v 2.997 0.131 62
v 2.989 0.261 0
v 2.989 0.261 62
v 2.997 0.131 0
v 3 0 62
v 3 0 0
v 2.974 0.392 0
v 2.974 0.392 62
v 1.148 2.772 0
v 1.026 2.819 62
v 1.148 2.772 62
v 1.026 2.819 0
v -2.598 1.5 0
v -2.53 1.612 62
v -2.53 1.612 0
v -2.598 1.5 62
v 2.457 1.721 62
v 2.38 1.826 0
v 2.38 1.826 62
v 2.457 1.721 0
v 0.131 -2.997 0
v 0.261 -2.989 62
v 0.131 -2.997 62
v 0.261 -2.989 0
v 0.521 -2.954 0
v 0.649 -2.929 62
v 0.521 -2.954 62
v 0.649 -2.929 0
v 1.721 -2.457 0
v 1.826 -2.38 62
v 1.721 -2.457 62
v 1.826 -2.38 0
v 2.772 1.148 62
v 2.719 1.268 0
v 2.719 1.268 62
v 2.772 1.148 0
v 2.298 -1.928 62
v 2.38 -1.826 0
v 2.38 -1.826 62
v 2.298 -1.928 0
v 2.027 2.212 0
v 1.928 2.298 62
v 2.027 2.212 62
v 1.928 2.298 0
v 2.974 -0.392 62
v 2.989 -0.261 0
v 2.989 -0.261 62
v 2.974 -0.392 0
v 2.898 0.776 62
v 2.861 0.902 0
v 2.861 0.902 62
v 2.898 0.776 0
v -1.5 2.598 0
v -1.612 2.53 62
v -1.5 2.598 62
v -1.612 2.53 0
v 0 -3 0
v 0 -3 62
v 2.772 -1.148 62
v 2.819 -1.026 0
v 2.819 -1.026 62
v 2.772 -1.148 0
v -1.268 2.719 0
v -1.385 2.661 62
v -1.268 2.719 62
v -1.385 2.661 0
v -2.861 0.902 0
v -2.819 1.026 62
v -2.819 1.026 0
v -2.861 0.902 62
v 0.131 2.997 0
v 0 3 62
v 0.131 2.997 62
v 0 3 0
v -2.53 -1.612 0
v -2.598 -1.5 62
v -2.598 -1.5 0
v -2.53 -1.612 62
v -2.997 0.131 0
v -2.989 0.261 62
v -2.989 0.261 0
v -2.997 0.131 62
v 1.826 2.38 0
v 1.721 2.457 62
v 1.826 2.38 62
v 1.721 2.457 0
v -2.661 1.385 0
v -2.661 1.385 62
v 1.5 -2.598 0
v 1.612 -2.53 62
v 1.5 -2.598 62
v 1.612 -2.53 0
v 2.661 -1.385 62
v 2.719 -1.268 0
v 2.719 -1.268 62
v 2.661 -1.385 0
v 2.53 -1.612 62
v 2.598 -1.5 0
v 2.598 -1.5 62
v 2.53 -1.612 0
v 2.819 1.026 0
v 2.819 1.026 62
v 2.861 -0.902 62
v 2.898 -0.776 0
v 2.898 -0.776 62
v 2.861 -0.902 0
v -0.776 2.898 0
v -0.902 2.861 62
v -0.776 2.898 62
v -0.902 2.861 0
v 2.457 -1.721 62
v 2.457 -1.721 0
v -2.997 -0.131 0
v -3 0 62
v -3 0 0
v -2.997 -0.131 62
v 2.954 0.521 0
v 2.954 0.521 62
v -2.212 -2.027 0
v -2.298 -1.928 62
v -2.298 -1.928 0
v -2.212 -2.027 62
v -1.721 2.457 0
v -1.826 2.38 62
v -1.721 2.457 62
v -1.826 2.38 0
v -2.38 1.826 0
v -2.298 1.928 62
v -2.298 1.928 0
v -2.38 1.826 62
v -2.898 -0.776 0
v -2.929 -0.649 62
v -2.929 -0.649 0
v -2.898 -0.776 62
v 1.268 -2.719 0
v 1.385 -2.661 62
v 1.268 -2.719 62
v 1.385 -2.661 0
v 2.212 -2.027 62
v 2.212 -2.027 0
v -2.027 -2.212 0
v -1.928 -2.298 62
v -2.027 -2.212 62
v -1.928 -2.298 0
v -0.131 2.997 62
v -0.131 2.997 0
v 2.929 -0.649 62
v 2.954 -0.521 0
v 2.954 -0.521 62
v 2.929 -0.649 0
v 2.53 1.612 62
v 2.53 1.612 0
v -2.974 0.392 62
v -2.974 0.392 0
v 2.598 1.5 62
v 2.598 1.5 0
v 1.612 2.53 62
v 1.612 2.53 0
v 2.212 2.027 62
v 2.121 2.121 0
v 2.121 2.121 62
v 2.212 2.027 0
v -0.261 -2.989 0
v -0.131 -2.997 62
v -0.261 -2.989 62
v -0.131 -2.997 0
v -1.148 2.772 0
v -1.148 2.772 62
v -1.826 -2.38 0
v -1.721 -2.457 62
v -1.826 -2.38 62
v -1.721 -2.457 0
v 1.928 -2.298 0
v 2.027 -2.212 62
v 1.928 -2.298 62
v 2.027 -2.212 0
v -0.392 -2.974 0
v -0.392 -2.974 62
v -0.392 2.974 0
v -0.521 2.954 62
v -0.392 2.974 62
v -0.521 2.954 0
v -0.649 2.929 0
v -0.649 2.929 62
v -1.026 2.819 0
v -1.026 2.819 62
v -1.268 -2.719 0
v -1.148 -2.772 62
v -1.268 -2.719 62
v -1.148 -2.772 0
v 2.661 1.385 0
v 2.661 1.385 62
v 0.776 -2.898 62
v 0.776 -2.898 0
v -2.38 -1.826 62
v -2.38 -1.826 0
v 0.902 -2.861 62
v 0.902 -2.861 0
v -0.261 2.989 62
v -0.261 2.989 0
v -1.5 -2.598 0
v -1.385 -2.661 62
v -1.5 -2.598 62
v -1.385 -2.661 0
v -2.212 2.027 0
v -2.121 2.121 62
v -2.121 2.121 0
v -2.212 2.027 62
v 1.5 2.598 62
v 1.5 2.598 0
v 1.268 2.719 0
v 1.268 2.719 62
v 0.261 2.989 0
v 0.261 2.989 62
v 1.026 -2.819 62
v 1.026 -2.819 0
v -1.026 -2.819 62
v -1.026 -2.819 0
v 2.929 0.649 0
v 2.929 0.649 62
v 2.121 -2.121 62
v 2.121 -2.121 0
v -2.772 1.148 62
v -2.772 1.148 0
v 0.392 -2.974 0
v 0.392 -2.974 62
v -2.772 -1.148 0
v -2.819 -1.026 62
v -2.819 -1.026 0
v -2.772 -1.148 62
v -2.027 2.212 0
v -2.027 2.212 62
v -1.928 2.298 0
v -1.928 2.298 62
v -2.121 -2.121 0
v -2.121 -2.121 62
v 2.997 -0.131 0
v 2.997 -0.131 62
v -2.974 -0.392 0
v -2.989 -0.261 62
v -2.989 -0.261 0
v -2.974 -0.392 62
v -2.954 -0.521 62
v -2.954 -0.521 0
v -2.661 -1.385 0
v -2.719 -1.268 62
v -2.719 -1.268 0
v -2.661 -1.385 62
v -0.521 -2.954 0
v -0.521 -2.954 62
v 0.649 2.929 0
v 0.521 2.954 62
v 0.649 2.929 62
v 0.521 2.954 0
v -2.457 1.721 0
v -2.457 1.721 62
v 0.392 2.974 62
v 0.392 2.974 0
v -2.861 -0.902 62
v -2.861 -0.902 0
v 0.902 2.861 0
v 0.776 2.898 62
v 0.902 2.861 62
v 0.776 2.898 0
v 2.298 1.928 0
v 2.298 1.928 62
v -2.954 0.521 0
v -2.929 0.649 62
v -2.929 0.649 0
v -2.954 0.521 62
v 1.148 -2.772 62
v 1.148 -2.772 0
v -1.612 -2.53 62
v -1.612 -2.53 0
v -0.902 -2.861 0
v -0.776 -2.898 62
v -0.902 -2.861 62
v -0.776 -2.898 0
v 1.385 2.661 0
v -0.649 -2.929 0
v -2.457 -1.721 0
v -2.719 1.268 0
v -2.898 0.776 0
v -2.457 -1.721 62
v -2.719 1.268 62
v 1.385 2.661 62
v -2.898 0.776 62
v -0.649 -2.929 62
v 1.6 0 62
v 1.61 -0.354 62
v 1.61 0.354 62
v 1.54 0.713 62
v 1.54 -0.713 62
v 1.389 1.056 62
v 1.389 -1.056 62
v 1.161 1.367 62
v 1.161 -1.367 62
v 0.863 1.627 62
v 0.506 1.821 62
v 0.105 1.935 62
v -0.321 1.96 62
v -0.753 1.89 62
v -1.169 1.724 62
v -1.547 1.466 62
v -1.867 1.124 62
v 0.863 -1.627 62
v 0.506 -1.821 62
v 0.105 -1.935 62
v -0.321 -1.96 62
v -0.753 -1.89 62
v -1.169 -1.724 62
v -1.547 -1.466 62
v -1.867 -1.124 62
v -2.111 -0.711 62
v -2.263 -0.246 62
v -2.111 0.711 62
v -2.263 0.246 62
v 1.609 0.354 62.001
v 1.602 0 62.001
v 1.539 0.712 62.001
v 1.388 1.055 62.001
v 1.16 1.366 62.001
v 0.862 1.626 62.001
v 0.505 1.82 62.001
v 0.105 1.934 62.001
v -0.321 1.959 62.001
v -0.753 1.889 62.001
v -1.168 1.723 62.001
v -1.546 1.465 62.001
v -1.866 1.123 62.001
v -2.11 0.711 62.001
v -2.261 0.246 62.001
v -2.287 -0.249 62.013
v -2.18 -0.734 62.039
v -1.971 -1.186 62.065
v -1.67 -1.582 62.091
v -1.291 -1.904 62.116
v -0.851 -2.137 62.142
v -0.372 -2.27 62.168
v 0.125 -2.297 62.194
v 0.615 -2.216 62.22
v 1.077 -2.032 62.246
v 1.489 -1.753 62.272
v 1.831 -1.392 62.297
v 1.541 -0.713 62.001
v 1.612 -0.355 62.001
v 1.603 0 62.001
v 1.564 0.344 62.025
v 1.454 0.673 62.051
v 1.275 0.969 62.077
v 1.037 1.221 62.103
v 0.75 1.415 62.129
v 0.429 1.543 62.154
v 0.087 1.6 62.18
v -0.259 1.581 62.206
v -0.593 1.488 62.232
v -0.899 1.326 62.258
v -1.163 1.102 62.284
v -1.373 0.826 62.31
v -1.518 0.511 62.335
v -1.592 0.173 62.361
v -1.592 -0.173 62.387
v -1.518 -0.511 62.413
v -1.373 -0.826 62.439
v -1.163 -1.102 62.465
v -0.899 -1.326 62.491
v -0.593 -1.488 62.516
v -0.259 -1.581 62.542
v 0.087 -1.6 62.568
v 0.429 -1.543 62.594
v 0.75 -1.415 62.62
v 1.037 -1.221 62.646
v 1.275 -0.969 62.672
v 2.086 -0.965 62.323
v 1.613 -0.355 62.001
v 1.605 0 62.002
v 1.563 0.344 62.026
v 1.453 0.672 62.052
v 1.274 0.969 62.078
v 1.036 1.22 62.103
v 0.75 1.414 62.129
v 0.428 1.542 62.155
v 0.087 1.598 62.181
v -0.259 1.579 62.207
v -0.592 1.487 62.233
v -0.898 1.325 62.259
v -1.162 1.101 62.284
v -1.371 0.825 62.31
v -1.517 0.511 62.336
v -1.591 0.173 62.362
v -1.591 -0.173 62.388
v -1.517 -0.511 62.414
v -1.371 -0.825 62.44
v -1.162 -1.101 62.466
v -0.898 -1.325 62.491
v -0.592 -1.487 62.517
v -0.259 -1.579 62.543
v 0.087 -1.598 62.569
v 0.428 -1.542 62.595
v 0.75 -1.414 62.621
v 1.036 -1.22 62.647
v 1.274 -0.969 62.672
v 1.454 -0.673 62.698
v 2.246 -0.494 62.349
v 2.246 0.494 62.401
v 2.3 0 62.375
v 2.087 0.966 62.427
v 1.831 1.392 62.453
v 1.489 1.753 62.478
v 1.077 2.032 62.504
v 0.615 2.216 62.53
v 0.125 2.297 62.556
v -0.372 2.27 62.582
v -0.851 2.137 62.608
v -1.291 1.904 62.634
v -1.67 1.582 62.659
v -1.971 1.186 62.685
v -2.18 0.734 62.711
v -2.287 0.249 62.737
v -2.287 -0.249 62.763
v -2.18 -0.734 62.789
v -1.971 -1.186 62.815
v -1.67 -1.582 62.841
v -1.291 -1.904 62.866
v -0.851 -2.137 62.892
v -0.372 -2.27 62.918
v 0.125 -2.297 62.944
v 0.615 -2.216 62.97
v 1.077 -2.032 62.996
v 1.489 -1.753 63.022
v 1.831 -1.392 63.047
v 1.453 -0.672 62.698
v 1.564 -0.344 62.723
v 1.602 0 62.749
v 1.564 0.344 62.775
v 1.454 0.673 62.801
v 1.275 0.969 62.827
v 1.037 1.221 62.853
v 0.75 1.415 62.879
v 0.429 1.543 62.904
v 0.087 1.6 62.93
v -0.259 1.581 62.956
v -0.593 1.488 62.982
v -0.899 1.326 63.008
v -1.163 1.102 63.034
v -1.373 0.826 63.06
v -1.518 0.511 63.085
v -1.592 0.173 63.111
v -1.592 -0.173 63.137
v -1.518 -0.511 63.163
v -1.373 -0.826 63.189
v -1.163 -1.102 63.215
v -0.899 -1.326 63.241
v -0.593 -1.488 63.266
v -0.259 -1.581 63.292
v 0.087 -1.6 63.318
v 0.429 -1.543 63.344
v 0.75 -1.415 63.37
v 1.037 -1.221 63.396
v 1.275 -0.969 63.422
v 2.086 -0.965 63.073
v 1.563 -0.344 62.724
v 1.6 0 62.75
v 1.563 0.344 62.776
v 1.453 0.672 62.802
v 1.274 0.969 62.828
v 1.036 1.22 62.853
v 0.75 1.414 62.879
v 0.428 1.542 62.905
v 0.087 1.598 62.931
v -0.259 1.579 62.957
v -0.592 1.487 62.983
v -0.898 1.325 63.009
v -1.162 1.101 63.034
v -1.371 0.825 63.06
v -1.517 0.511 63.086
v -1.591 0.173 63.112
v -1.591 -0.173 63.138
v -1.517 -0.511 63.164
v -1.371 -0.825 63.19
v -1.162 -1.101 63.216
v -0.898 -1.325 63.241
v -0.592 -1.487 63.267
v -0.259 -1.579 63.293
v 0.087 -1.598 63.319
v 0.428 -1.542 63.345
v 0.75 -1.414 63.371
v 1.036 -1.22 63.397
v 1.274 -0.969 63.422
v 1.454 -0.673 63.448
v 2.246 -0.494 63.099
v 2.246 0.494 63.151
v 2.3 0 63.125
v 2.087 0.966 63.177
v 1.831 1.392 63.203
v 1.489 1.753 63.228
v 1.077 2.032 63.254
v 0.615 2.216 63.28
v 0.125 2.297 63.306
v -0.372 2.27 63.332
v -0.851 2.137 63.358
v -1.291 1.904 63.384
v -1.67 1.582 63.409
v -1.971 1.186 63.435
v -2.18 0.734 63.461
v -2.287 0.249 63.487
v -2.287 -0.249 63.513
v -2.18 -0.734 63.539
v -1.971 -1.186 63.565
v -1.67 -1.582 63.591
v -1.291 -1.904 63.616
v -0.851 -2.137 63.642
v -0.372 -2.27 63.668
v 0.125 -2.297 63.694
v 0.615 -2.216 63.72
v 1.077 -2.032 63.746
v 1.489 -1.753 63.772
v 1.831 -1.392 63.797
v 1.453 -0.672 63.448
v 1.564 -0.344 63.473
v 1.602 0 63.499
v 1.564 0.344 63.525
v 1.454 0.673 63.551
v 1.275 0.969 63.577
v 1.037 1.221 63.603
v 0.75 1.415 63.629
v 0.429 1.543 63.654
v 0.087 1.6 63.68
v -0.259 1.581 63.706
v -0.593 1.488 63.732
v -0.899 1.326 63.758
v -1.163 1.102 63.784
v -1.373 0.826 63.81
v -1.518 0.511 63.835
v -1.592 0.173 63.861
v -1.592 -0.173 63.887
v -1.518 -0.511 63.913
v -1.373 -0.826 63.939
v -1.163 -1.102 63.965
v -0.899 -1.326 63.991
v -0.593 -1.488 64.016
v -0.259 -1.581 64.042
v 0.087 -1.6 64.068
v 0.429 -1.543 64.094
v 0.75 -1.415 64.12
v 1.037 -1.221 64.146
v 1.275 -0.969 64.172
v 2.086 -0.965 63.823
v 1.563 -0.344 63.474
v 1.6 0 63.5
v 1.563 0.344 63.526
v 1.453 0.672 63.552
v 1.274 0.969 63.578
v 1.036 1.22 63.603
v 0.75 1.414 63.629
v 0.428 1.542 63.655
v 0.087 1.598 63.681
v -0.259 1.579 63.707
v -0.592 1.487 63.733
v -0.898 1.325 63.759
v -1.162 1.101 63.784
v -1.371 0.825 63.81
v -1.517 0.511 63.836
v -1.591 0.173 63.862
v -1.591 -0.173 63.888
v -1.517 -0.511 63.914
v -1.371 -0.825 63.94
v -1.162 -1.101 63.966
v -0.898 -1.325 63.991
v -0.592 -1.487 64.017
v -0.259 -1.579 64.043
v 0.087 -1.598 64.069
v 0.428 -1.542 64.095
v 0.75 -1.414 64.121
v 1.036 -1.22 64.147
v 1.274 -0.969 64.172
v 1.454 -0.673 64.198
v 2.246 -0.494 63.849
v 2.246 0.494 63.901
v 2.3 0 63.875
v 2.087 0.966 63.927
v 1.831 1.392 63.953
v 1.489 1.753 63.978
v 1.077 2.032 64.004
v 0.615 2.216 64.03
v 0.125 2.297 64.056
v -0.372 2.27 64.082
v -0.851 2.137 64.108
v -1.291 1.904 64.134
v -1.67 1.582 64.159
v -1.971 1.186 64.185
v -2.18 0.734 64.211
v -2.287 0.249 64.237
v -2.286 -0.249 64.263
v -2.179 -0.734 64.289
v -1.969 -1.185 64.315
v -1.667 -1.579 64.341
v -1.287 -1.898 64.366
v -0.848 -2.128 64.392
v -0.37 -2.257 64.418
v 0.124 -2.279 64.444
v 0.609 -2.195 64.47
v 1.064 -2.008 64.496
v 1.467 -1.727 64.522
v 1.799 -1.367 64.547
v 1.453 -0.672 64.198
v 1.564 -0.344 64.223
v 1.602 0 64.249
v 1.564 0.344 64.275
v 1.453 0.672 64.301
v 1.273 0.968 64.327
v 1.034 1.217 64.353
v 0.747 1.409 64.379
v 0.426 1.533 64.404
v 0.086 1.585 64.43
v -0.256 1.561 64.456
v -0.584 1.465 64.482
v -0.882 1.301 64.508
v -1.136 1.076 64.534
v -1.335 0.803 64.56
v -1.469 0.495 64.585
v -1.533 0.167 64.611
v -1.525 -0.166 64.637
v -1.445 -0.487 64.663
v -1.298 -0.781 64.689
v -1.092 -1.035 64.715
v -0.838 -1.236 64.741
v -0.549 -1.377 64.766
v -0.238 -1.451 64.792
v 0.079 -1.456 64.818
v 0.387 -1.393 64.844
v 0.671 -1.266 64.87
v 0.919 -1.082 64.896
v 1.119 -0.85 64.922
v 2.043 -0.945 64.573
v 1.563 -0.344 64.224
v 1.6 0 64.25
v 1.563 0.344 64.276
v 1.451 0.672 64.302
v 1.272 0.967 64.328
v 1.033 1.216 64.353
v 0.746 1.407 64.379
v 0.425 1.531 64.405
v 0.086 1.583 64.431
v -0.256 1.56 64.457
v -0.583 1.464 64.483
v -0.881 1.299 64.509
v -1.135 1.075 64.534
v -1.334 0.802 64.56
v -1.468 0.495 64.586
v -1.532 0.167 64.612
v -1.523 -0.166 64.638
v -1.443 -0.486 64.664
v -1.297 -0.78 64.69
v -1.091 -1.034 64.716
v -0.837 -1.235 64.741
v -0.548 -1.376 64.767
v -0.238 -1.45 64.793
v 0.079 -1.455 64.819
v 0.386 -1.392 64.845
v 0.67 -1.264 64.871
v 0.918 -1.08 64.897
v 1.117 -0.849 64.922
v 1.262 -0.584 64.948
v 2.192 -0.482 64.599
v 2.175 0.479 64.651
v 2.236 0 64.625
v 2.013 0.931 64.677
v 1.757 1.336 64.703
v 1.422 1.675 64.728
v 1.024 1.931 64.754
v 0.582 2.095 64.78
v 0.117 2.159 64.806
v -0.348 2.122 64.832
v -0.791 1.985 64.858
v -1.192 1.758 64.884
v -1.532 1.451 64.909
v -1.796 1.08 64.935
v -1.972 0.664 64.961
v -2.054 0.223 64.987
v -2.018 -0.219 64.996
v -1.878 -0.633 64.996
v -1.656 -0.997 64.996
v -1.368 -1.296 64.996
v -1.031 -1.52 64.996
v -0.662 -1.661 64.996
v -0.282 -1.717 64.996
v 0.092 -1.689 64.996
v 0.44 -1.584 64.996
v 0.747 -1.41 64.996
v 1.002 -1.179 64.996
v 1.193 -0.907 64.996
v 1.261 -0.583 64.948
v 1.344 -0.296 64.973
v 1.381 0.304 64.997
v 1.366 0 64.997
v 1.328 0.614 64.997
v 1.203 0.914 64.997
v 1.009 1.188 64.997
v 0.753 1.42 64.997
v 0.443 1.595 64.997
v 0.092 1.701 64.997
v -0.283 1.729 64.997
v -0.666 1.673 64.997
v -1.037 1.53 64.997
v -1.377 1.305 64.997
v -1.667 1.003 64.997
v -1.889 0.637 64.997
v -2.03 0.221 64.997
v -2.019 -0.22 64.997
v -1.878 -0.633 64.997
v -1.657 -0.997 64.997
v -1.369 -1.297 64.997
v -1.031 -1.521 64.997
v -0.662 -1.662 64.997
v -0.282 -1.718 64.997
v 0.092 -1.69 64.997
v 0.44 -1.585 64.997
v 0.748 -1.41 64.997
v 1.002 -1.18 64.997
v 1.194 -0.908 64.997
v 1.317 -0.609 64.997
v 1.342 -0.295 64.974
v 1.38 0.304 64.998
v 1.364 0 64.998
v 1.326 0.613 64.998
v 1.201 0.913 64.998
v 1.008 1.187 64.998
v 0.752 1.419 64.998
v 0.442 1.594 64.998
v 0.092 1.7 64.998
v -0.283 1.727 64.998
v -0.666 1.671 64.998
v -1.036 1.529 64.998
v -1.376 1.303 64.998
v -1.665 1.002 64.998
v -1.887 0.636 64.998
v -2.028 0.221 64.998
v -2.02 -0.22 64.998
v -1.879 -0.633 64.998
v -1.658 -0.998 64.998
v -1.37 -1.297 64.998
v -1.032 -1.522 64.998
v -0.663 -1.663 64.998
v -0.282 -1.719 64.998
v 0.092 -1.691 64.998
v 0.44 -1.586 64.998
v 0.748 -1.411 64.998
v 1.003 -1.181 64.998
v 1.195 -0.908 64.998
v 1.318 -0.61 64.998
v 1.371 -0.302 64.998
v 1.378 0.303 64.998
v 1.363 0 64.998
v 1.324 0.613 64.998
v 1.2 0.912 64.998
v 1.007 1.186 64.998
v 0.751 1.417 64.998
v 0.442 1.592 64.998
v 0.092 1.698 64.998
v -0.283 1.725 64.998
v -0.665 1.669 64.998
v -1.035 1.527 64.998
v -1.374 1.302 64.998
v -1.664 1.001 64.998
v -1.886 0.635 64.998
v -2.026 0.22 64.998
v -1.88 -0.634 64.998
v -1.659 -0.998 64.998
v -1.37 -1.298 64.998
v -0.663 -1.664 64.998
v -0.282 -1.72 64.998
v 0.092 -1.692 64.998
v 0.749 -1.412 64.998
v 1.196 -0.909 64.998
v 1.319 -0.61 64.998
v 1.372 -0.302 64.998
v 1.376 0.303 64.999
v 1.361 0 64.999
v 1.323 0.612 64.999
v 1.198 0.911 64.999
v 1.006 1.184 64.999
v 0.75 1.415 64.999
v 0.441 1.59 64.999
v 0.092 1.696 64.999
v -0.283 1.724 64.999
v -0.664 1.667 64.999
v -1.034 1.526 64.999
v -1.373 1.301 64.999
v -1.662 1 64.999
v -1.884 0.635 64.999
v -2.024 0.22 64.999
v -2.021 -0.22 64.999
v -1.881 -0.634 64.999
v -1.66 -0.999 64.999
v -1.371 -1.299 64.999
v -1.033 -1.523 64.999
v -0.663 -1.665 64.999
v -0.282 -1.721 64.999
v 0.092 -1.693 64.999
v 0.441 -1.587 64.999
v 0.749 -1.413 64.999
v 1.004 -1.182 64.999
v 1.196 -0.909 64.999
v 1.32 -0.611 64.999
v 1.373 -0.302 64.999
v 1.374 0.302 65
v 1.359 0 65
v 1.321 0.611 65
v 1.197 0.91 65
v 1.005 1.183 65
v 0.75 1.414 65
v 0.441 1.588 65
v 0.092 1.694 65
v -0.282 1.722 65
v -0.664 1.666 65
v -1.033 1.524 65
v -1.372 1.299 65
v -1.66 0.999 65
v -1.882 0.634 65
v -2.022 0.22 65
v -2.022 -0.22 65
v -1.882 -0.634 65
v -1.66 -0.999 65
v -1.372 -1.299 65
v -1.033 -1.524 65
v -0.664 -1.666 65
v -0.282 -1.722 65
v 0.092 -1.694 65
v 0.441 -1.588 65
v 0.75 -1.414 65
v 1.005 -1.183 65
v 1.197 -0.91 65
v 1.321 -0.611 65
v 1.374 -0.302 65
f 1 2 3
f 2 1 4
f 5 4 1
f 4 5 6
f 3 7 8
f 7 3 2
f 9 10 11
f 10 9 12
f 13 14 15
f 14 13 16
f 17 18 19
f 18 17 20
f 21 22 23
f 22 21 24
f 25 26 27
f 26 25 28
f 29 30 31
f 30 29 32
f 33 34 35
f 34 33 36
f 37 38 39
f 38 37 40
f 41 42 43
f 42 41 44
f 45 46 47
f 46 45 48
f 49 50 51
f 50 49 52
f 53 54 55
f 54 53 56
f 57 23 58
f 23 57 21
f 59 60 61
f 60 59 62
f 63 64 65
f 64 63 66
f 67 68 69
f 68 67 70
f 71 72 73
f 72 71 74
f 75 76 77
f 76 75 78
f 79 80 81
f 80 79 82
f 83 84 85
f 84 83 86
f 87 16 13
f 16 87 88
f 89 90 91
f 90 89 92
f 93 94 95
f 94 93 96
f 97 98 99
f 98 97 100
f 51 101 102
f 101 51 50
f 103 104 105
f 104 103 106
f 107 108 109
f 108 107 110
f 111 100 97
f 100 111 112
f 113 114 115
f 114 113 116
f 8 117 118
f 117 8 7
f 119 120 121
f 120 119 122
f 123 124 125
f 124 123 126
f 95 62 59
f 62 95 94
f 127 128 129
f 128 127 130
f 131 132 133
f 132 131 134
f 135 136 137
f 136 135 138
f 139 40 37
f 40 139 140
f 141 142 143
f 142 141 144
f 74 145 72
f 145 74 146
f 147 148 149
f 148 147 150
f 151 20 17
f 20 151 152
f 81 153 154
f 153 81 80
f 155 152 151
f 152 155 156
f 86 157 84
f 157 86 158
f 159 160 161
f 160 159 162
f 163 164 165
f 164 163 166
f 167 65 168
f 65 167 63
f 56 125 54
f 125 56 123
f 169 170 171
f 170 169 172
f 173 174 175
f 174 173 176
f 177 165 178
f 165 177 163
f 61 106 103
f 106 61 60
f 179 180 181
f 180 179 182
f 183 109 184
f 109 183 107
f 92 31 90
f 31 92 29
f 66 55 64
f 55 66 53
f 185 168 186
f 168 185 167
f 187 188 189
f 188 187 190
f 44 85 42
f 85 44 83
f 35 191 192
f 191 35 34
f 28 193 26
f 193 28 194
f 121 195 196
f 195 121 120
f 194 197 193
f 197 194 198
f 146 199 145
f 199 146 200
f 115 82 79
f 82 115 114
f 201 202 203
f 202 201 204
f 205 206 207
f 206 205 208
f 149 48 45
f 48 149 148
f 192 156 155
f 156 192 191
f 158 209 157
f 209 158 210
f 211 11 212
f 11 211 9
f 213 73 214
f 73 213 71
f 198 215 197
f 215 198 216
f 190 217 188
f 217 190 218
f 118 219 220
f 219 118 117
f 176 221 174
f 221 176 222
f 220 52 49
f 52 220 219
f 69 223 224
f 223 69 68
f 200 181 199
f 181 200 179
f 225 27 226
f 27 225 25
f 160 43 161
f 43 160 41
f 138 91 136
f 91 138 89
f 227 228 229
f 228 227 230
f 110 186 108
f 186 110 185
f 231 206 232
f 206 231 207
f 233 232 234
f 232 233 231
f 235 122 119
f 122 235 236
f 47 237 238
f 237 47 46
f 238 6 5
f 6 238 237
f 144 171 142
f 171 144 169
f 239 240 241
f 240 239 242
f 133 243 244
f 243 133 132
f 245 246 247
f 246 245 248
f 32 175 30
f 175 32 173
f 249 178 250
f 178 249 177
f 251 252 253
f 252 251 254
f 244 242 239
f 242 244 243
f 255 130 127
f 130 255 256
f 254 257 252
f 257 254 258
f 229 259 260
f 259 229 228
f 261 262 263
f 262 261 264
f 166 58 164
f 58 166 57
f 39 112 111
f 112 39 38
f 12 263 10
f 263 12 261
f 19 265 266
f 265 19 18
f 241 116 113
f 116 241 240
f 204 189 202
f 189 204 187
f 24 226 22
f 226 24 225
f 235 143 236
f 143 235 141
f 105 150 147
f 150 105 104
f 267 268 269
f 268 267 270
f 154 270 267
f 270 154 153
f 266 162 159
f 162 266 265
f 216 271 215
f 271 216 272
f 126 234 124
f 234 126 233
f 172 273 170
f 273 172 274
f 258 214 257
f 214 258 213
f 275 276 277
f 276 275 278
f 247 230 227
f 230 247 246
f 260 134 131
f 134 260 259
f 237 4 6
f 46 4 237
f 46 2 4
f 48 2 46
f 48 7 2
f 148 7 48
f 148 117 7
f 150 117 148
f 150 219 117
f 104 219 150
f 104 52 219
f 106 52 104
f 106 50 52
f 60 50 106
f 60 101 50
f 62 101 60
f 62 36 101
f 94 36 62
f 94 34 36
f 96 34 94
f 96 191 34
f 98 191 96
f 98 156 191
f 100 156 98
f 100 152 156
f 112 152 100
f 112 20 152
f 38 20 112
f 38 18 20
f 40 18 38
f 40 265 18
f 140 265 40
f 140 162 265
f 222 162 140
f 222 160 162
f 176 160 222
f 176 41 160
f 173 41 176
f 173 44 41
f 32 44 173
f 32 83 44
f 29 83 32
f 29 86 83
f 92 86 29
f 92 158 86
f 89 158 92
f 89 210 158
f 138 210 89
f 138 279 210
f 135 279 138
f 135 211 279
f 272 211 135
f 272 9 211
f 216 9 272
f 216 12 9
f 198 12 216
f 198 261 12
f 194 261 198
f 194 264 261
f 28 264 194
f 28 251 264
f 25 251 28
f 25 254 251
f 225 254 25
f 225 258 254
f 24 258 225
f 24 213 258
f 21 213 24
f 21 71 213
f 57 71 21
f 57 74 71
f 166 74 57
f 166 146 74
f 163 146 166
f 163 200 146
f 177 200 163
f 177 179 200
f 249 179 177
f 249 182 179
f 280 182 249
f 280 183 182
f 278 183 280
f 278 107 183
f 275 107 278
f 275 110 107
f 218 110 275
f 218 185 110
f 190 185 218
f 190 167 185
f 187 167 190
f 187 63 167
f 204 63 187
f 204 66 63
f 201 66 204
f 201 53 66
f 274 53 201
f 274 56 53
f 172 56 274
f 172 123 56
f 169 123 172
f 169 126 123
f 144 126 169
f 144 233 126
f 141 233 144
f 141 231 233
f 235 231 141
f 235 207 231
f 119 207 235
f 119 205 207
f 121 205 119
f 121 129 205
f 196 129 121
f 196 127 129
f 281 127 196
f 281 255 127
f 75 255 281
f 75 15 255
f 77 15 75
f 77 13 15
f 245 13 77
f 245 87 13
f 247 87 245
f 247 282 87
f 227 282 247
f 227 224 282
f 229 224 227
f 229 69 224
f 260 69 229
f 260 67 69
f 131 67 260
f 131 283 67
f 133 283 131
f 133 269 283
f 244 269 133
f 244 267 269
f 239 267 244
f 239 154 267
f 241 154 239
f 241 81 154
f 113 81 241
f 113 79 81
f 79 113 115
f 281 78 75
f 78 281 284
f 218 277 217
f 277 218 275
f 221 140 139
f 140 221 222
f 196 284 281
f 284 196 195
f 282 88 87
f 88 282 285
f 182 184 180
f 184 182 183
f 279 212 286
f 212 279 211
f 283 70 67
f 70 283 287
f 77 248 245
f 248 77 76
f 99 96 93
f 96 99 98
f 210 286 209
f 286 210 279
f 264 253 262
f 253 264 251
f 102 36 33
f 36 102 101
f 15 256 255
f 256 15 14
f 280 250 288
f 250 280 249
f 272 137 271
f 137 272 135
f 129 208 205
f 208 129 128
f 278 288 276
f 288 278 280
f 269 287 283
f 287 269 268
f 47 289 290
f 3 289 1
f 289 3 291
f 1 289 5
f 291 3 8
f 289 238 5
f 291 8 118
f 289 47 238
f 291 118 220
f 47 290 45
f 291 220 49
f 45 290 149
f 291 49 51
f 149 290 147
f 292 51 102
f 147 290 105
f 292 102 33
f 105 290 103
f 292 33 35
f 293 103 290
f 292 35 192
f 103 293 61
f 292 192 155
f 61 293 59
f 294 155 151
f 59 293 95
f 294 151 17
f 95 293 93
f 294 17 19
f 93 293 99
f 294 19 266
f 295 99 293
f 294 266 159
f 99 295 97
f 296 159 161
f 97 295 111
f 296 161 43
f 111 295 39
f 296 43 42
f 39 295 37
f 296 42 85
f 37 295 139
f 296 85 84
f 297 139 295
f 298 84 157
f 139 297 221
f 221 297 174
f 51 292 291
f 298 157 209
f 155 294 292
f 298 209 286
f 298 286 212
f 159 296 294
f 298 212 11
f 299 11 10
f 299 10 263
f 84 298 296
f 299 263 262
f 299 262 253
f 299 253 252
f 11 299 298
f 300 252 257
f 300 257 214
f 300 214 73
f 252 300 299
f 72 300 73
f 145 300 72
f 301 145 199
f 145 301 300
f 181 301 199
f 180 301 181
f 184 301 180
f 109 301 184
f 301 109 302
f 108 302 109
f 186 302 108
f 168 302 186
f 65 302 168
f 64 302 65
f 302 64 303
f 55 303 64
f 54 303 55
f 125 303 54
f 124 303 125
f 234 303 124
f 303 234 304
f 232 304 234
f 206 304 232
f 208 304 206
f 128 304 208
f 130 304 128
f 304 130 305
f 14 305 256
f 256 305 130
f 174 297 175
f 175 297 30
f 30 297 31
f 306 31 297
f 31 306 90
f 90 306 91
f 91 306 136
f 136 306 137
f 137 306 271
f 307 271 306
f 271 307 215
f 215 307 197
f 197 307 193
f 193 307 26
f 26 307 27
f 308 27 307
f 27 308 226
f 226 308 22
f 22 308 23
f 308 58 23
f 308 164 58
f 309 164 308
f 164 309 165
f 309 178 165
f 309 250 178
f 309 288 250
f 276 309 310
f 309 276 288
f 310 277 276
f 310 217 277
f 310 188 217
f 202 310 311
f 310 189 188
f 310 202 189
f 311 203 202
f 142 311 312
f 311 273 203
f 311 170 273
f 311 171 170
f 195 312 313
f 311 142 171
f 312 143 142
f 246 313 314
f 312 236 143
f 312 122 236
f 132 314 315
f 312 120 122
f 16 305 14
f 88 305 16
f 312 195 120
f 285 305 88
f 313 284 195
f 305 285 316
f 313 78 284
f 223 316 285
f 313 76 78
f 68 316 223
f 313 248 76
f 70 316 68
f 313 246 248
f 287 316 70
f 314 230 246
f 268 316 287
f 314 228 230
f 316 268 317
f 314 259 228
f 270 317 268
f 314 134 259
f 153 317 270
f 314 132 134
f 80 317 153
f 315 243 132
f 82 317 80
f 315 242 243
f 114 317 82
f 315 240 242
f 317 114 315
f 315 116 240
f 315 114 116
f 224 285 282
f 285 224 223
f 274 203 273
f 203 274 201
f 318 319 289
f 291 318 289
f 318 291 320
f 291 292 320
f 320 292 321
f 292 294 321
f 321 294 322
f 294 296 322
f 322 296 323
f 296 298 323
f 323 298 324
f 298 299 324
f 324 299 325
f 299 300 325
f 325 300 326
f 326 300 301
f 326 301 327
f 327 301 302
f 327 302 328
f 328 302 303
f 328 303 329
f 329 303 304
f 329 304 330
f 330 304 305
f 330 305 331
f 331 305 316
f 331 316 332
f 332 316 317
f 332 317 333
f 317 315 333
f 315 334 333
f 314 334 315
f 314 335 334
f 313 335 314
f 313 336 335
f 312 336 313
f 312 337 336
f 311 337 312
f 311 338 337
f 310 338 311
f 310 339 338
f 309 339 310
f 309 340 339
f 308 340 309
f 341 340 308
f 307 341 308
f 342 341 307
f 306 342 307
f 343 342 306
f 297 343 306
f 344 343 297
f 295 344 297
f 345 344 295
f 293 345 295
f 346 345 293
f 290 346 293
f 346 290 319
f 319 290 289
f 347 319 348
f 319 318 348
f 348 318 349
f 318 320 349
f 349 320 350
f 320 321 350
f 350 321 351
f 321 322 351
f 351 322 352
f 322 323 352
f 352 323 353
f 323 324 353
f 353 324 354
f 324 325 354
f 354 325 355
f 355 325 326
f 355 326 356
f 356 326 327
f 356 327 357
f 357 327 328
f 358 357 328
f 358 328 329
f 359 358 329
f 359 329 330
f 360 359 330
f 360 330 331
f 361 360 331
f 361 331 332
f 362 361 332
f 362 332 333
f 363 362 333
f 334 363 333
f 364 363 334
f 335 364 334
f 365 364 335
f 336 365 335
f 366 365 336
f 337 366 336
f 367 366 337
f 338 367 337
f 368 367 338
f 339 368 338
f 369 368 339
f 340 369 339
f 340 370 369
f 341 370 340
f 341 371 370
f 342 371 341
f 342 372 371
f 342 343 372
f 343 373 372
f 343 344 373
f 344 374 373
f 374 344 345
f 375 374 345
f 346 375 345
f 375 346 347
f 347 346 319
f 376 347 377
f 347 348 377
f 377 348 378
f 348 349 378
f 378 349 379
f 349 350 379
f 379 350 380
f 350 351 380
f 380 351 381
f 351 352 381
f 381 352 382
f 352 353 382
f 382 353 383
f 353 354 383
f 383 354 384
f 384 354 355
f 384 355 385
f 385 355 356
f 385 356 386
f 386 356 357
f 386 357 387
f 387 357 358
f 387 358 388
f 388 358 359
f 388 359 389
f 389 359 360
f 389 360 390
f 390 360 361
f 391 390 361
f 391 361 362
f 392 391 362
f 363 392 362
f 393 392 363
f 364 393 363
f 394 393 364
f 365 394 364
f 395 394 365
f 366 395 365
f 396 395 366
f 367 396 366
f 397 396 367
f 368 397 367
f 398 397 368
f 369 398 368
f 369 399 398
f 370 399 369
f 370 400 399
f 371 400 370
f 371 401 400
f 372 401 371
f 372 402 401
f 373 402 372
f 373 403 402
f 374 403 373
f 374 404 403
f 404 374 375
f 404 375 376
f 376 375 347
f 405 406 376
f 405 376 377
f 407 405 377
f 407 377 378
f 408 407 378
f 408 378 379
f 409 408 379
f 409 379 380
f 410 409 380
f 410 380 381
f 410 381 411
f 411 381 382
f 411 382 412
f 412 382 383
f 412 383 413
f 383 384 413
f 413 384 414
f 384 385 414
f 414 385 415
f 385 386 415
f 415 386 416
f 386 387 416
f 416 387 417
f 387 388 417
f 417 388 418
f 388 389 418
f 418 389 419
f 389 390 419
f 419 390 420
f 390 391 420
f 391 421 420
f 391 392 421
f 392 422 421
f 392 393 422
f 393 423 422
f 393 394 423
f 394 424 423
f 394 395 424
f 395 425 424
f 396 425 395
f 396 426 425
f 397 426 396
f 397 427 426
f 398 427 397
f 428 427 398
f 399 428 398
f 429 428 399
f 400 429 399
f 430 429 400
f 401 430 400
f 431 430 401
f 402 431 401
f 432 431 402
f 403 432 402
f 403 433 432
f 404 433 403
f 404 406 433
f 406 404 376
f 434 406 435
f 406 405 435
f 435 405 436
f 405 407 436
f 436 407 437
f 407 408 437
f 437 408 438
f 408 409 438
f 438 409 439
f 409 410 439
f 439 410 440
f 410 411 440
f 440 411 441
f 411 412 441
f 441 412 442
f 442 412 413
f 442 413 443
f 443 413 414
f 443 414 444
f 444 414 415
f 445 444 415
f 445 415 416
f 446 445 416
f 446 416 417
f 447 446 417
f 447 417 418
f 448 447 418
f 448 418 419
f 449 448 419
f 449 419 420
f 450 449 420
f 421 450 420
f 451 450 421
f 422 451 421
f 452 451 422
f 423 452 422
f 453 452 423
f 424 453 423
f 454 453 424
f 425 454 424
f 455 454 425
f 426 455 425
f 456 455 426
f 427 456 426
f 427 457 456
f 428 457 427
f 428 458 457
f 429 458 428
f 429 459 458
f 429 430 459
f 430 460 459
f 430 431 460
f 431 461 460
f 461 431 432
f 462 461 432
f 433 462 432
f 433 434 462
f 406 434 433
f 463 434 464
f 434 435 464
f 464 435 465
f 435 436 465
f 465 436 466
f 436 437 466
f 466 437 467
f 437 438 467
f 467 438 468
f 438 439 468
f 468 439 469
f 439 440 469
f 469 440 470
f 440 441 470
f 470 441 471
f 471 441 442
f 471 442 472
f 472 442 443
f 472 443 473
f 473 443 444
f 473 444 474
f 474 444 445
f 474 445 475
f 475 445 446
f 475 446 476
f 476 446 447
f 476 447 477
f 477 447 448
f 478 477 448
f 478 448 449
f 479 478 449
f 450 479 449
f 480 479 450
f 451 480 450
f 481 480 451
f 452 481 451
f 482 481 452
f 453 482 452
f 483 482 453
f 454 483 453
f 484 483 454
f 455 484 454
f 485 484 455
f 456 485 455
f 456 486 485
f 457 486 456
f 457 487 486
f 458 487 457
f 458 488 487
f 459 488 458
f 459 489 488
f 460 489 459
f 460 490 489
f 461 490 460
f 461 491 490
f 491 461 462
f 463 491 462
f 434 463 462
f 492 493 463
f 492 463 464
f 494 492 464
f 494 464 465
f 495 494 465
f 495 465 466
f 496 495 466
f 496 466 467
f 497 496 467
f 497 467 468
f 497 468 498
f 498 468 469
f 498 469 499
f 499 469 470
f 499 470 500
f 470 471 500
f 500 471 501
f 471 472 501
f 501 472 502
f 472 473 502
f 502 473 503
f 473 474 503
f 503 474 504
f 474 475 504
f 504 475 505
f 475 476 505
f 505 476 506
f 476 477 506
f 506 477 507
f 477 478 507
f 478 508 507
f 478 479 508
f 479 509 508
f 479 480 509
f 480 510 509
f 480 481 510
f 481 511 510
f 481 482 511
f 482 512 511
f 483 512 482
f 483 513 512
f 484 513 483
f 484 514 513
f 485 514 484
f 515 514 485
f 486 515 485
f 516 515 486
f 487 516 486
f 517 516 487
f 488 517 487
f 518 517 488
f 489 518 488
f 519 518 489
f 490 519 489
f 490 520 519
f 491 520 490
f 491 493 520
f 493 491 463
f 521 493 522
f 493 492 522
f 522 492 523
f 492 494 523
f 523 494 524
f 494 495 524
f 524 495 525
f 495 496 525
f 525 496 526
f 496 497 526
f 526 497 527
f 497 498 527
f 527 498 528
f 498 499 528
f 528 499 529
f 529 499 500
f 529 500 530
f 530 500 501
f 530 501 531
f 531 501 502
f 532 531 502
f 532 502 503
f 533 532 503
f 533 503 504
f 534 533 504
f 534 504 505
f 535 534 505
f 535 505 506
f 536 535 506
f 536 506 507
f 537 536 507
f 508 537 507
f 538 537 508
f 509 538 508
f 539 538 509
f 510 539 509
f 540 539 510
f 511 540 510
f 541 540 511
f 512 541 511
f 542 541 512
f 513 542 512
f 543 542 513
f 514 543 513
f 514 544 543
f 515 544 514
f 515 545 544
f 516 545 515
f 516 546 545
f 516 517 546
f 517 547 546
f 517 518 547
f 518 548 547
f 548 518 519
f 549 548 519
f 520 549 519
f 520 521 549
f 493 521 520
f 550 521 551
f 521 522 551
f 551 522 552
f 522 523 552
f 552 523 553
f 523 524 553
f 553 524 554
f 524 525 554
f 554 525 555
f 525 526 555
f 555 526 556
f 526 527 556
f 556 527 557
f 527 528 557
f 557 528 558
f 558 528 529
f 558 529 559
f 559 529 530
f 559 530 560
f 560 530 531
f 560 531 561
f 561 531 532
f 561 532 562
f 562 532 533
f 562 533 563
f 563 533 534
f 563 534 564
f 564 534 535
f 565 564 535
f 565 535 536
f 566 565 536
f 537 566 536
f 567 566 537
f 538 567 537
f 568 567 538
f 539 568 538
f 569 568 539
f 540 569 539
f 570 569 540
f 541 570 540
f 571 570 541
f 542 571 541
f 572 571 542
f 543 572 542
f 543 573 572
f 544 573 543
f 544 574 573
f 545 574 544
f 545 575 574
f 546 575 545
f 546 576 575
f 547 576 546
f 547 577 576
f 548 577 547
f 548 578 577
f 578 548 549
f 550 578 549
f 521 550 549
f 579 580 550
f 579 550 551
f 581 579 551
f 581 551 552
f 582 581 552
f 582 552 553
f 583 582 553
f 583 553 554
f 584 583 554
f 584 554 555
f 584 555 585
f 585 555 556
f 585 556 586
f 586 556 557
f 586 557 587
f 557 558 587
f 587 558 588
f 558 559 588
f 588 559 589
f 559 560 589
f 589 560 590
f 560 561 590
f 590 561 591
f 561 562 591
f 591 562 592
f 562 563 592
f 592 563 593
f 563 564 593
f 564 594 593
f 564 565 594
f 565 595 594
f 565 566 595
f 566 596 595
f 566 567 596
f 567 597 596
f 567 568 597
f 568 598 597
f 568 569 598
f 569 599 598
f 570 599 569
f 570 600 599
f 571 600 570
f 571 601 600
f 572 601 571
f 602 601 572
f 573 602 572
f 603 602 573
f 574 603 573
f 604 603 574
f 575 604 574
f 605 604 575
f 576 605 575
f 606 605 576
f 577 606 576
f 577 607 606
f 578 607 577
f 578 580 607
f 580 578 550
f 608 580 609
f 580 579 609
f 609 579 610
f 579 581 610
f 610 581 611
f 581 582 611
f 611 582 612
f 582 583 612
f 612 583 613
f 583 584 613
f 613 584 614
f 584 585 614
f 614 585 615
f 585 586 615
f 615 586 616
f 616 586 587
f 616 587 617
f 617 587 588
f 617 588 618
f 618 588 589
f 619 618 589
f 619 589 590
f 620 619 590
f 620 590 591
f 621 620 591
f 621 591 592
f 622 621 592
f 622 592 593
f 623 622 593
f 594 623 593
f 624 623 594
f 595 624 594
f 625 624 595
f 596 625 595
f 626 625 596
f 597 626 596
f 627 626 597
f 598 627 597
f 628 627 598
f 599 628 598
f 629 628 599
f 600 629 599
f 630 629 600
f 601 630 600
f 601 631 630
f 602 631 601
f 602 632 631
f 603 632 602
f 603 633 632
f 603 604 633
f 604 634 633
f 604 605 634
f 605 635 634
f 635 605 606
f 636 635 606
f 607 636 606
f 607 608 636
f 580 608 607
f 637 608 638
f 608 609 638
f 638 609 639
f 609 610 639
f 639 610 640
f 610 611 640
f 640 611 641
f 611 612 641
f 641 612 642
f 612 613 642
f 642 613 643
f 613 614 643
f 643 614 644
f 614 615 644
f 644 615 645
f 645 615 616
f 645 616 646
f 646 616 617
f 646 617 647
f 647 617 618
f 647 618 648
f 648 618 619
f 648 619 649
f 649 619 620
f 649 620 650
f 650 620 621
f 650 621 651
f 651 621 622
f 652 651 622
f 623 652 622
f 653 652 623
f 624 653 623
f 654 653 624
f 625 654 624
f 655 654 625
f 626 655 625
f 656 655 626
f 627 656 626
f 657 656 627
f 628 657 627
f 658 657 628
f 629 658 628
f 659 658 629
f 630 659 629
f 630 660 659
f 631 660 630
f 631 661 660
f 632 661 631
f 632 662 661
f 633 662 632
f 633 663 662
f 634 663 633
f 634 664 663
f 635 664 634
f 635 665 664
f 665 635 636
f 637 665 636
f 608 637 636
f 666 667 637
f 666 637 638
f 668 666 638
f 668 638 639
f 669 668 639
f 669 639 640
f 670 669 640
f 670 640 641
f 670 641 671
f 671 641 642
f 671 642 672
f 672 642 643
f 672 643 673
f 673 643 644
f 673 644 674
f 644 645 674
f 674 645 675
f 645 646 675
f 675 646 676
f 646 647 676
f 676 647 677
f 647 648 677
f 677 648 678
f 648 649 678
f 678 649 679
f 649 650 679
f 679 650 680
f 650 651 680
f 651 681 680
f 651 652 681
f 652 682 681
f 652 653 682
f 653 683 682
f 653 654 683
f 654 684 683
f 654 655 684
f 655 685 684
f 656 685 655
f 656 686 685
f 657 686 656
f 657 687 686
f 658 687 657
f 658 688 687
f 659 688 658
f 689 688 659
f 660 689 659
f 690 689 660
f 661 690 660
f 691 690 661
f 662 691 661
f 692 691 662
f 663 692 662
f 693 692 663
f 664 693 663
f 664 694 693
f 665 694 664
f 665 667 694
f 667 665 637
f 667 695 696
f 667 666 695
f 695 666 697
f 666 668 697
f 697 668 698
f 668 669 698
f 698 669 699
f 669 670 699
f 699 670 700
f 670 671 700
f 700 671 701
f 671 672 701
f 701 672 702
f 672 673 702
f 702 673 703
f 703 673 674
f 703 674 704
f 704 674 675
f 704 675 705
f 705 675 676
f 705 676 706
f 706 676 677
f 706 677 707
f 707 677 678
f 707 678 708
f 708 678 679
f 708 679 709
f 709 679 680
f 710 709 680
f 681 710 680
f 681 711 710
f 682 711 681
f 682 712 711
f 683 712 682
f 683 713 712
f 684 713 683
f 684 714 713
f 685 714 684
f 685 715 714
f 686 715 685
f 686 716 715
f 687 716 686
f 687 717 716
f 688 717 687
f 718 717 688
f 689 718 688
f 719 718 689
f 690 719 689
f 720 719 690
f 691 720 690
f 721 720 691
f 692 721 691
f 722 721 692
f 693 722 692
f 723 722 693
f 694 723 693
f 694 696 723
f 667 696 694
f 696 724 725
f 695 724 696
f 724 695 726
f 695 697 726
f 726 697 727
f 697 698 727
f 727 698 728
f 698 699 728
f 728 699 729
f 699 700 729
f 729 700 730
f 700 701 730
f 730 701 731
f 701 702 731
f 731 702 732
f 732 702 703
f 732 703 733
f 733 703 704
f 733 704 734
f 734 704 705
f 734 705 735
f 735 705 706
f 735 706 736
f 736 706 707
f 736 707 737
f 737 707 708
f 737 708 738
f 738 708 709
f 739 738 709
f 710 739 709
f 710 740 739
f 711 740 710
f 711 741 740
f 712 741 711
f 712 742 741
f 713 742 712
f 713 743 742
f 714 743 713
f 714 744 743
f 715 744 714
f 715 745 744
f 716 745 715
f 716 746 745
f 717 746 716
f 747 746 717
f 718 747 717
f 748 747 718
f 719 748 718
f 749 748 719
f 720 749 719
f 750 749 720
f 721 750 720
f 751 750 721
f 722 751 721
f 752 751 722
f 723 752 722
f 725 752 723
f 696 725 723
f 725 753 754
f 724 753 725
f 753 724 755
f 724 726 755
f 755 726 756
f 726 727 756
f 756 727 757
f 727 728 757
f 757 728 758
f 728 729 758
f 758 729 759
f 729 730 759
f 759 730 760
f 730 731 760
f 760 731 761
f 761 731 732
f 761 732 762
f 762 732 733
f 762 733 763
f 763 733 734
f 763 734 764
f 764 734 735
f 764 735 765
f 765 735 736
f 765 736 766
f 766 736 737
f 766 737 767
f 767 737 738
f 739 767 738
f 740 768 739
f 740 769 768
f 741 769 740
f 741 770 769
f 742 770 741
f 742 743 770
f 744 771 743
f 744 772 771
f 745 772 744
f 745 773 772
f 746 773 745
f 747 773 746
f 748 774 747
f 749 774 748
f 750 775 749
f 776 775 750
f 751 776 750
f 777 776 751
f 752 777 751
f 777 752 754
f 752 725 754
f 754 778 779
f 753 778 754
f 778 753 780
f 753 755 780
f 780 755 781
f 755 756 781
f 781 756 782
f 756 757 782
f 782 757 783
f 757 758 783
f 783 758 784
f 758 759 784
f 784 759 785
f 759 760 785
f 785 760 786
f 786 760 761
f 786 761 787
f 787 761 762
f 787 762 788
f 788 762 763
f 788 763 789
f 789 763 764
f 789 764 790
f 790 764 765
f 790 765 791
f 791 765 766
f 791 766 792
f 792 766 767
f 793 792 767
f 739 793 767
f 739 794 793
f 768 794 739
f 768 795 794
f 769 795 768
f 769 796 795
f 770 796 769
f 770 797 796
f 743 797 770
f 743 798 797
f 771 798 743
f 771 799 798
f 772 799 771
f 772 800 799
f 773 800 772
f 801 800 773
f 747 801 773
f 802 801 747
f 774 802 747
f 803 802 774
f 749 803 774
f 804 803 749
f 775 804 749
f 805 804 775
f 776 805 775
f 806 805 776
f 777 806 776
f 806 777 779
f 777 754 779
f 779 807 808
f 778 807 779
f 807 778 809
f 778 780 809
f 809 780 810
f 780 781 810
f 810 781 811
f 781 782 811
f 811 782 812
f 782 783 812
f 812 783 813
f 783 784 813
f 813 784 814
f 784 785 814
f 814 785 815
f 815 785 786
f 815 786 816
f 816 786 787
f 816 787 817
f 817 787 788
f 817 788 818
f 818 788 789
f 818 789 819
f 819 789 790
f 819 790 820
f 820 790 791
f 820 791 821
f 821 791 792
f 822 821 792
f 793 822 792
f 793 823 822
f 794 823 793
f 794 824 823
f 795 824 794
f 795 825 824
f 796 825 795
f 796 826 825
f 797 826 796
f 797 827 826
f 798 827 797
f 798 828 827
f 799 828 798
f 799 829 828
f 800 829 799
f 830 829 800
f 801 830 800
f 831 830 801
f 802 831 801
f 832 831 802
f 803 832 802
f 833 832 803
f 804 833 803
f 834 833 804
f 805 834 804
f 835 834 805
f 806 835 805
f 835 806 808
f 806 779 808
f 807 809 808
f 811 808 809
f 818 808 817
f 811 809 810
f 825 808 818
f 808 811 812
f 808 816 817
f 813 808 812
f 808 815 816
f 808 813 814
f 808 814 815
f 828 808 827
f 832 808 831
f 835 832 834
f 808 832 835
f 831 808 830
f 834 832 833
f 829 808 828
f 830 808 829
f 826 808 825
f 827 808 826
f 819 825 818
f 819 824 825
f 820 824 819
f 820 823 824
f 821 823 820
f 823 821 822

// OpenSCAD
// Created 2016-2017 by Ryan A. Colyer.
// This work is released with CC0 into the public domain.
// https://creativecommons.org/publicdomain/zero/1.0/
//
// https://www.thingiverse.com/thing:1686322
//
// v2.1

$fn = 100;

screw_resolution = 0.5;  // in mm

// Legs
leg_diameter = 6;
leg_height = 62;

// Provides standard metric thread pitches.
function ThreadPitch(diameter) =
  (diameter <= 64) ?
    lookup(diameter, [
      [2, 0.4],
      [2.5, 0.45],
      [3, 0.5],
      [4, 0.7],
      [5, 0.8],
      [6, 1.0],
      [7, 1.0],
      [8, 1.25],
      [10, 1.5],
      [12, 1.75],
      [14, 2.0],
      [16, 2.0],
      [18, 2.5],
      [20, 2.5],
      [22, 2.5],
      [24, 3.0],
      [27, 3.0],
      [30, 3.5],
      [33, 3.5],
      [36, 4.0],
      [39, 4.0],
      [42, 4.5],
      [48, 5.0],
      [52, 5.0],
      [56, 5.5],
      [60, 5.5],
      [64, 6.0]
    ]) :
    diameter * 6.0 / 64;


// This generates a closed polyhedron from an array of arrays of points,
// with each inner array tracing out one loop outlining the polyhedron.
// pointarrays should contain an array of N arrays each of size P outlining a
// closed manifold.  The points must obey the right-hand rule.  For example,
// looking down, the P points in the inner arrays are counter-clockwise in a
// loop, while the N point arrays increase in height.  Points in each inner
// array do not need to be equal height, but they usually should not meet or
// cross the line segments from the adjacent points in the other arrays.
// (N>=2, P>=3)
// Core triangles:
//   [j][i], [j+1][i], [j+1][(i+1)%P]
//   [j][i], [j+1][(i+1)%P], [j][(i+1)%P]
//   Then triangles are formed in a loop with the middle point of the first
//   and last array.
module ClosePoints(pointarrays) {
  function recurse_avg(arr, n=0, p=[0,0,0]) = (n>=len(arr)) ? p :
    recurse_avg(arr, n+1, p+(arr[n]-p)/(n+1));

  N = len(pointarrays);
  P = len(pointarrays[0]);
  NP = N*P;
  lastarr = pointarrays[N-1];
  midbot = recurse_avg(pointarrays[0]);
  midtop = recurse_avg(pointarrays[N-1]);

  faces_bot = [
    for (i=[0:P-1])
      [0,i+1,1+(i+1)%len(pointarrays[0])]
  ];

  loop_offset = 1;
  bot_len = loop_offset + P;

  faces_loop = [
    for (j=[0:N-2], i=[0:P-1], t=[0:1])
      [loop_offset, loop_offset, loop_offset] + (t==0 ?
      [j*P+i, (j+1)*P+i, (j+1)*P+(i+1)%P] :
      [j*P+i, (j+1)*P+(i+1)%P, j*P+(i+1)%P])
  ];

  top_offset = loop_offset + NP - P;
  midtop_offset = top_offset + P;

  faces_top = [
    for (i=[0:P-1])
      [midtop_offset,top_offset+(i+1)%P,top_offset+i]
  ];

  points = [
    for (i=[-1:NP])
      (i<0) ? midbot :
      ((i==NP) ? midtop :
      pointarrays[floor(i/P)][i%P])
  ];
  faces = concat(faces_bot, faces_loop, faces_top);

  polyhedron(points=points, faces=faces);
}

// This creates a vertical rod at the origin with external threads.  It uses
// metric standards by default.
module ScrewThread(outer_diam, height, pitch=0, tooth_angle=30, tolerance=0.4, tip_height=0, tooth_height=0, tip_min_fract=0) {

  pitch = (pitch==0) ? ThreadPitch(outer_diam) : pitch;
  tooth_height = (tooth_height==0) ? pitch : tooth_height;
  tip_min_fract = (tip_min_fract<0) ? 0 :
    ((tip_min_fract>0.9999) ? 0.9999 : tip_min_fract);

  outer_diam_cor = outer_diam + 0.25*tolerance; // Plastic shrinkage correction
  inner_diam = outer_diam - tooth_height/tan(tooth_angle);
  or = (outer_diam_cor < screw_resolution) ?
    screw_resolution/2 : outer_diam_cor / 2;
  ir = (inner_diam < screw_resolution) ? screw_resolution/2 : inner_diam / 2;
  height = (height < screw_resolution) ? screw_resolution : height;

  steps_per_loop_try = ceil(2*3.14159265359*or / screw_resolution);
  steps_per_loop = (steps_per_loop_try < 4) ? 4 : steps_per_loop_try;
  hs_ext = 3;
  hsteps = ceil(3 * height / pitch) + 2*hs_ext;

  extent = or - ir;

  tip_start = height-tip_height;
  tip_height_sc = tip_height / (1-tip_min_fract);

  tip_height_ir = (tip_height_sc > tooth_height/2) ?
    tip_height_sc - tooth_height/2 : tip_height_sc;

  tip_height_w = (tip_height_sc > tooth_height) ? tooth_height : tip_height_sc;
  tip_wstart = height + tip_height_sc - tip_height - tip_height_w;


  function tooth_width(a, h, pitch, tooth_height, extent) =
    let(
      ang_full = h*360.0/pitch-a,
      ang_pn = atan2(sin(ang_full), cos(ang_full)),
      ang = ang_pn < 0 ? ang_pn+360 : ang_pn,
      frac = ang/360,
      tfrac_half = tooth_height / (2*pitch),
      tfrac_cut = 2*tfrac_half
    )
    (frac > tfrac_cut) ? 0 : (
      (frac <= tfrac_half) ?
        ((frac / tfrac_half) * extent) :
        ((1 - (frac - tfrac_half)/tfrac_half) * extent)
    );


  pointarrays = [
    for (hs=[0:hsteps])
      [
        for (s=[0:steps_per_loop-1])
          let(
            ang_full = s*360.0/steps_per_loop,
            ang_pn = atan2(sin(ang_full), cos(ang_full)),
            ang = ang_pn < 0 ? ang_pn+360 : ang_pn,

            h_fudge = pitch*0.001,

            h_mod =
              (hs%3 == 2) ?
                ((s == steps_per_loop-1) ? tooth_height - h_fudge : (
                 (s == steps_per_loop-2) ? tooth_height/2 : 0)) : (
              (hs%3 == 0) ?
                ((s == steps_per_loop-1) ? pitch-tooth_height/2 : (
                 (s == steps_per_loop-2) ? pitch-tooth_height + h_fudge : 0)) :
                ((s == steps_per_loop-1) ? pitch-tooth_height/2 + h_fudge : (
                 (s == steps_per_loop-2) ? tooth_height/2 : 0))
              ),

            h_level =
              (hs%3 == 2) ? tooth_height - h_fudge : (
              (hs%3 == 0) ? 0 : tooth_height/2),

            h_ub = floor((hs-hs_ext)/3) * pitch
              + h_level + ang*pitch/360.0 - h_mod,
            h_max = height - (hsteps-hs) * h_fudge,
            h_min = hs * h_fudge,
            h = (h_ub < h_min) ? h_min : ((h_ub > h_max) ? h_max : h_ub),

            ht = h - tip_start,
            hf_ir = ht/tip_height_ir,
            ht_w = h - tip_wstart,
            hf_w_t = ht_w/tip_height_w,
            hf_w = (hf_w_t < 0) ? 0 : ((hf_w_t > 1) ? 1 : hf_w_t),

            ext_tip = (h <= tip_wstart) ? extent : (1-hf_w) * extent,
            wnormal = tooth_width(ang, h, pitch, tooth_height, ext_tip),
            w = (h <= tip_wstart) ? wnormal :
              (1-hf_w) * wnormal +
              hf_w * (0.1*screw_resolution + (wnormal * wnormal * wnormal /
                (ext_tip*ext_tip+0.1*screw_resolution))),
            r = (ht <= 0) ? ir + w :
              ( (ht < tip_height_ir ? ((2/(1+(hf_ir*hf_ir))-1) * ir) : 0) + w)
          )
          [r*cos(ang), r*sin(ang), h]
      ]
  ];


  ClosePoints(pointarrays);
}

// Solid rod on the bottom, external threads on the top.
module RodStart(height, diameter, thread_len=0, thread_diam=0, thread_pitch=0) {
  // A reasonable default.
  thread_diam = (thread_diam==0) ? 0.75*diameter : thread_diam;
  thread_len = (thread_len==0) ? 0.5*diameter : thread_len;
  thread_pitch = (thread_pitch==0) ? ThreadPitch(thread_diam) : thread_pitch;

  cylinder(r=diameter/2, h=height, $fn=24*diameter);

  translate([0, 0, height])
    ScrewThread(thread_diam, thread_len, thread_pitch,
      tip_height=thread_pitch, tip_min_fract=0.75);
}

// Legs
module leg() {
  RodStart(leg_height, leg_diameter);
}

// Render
leg();
